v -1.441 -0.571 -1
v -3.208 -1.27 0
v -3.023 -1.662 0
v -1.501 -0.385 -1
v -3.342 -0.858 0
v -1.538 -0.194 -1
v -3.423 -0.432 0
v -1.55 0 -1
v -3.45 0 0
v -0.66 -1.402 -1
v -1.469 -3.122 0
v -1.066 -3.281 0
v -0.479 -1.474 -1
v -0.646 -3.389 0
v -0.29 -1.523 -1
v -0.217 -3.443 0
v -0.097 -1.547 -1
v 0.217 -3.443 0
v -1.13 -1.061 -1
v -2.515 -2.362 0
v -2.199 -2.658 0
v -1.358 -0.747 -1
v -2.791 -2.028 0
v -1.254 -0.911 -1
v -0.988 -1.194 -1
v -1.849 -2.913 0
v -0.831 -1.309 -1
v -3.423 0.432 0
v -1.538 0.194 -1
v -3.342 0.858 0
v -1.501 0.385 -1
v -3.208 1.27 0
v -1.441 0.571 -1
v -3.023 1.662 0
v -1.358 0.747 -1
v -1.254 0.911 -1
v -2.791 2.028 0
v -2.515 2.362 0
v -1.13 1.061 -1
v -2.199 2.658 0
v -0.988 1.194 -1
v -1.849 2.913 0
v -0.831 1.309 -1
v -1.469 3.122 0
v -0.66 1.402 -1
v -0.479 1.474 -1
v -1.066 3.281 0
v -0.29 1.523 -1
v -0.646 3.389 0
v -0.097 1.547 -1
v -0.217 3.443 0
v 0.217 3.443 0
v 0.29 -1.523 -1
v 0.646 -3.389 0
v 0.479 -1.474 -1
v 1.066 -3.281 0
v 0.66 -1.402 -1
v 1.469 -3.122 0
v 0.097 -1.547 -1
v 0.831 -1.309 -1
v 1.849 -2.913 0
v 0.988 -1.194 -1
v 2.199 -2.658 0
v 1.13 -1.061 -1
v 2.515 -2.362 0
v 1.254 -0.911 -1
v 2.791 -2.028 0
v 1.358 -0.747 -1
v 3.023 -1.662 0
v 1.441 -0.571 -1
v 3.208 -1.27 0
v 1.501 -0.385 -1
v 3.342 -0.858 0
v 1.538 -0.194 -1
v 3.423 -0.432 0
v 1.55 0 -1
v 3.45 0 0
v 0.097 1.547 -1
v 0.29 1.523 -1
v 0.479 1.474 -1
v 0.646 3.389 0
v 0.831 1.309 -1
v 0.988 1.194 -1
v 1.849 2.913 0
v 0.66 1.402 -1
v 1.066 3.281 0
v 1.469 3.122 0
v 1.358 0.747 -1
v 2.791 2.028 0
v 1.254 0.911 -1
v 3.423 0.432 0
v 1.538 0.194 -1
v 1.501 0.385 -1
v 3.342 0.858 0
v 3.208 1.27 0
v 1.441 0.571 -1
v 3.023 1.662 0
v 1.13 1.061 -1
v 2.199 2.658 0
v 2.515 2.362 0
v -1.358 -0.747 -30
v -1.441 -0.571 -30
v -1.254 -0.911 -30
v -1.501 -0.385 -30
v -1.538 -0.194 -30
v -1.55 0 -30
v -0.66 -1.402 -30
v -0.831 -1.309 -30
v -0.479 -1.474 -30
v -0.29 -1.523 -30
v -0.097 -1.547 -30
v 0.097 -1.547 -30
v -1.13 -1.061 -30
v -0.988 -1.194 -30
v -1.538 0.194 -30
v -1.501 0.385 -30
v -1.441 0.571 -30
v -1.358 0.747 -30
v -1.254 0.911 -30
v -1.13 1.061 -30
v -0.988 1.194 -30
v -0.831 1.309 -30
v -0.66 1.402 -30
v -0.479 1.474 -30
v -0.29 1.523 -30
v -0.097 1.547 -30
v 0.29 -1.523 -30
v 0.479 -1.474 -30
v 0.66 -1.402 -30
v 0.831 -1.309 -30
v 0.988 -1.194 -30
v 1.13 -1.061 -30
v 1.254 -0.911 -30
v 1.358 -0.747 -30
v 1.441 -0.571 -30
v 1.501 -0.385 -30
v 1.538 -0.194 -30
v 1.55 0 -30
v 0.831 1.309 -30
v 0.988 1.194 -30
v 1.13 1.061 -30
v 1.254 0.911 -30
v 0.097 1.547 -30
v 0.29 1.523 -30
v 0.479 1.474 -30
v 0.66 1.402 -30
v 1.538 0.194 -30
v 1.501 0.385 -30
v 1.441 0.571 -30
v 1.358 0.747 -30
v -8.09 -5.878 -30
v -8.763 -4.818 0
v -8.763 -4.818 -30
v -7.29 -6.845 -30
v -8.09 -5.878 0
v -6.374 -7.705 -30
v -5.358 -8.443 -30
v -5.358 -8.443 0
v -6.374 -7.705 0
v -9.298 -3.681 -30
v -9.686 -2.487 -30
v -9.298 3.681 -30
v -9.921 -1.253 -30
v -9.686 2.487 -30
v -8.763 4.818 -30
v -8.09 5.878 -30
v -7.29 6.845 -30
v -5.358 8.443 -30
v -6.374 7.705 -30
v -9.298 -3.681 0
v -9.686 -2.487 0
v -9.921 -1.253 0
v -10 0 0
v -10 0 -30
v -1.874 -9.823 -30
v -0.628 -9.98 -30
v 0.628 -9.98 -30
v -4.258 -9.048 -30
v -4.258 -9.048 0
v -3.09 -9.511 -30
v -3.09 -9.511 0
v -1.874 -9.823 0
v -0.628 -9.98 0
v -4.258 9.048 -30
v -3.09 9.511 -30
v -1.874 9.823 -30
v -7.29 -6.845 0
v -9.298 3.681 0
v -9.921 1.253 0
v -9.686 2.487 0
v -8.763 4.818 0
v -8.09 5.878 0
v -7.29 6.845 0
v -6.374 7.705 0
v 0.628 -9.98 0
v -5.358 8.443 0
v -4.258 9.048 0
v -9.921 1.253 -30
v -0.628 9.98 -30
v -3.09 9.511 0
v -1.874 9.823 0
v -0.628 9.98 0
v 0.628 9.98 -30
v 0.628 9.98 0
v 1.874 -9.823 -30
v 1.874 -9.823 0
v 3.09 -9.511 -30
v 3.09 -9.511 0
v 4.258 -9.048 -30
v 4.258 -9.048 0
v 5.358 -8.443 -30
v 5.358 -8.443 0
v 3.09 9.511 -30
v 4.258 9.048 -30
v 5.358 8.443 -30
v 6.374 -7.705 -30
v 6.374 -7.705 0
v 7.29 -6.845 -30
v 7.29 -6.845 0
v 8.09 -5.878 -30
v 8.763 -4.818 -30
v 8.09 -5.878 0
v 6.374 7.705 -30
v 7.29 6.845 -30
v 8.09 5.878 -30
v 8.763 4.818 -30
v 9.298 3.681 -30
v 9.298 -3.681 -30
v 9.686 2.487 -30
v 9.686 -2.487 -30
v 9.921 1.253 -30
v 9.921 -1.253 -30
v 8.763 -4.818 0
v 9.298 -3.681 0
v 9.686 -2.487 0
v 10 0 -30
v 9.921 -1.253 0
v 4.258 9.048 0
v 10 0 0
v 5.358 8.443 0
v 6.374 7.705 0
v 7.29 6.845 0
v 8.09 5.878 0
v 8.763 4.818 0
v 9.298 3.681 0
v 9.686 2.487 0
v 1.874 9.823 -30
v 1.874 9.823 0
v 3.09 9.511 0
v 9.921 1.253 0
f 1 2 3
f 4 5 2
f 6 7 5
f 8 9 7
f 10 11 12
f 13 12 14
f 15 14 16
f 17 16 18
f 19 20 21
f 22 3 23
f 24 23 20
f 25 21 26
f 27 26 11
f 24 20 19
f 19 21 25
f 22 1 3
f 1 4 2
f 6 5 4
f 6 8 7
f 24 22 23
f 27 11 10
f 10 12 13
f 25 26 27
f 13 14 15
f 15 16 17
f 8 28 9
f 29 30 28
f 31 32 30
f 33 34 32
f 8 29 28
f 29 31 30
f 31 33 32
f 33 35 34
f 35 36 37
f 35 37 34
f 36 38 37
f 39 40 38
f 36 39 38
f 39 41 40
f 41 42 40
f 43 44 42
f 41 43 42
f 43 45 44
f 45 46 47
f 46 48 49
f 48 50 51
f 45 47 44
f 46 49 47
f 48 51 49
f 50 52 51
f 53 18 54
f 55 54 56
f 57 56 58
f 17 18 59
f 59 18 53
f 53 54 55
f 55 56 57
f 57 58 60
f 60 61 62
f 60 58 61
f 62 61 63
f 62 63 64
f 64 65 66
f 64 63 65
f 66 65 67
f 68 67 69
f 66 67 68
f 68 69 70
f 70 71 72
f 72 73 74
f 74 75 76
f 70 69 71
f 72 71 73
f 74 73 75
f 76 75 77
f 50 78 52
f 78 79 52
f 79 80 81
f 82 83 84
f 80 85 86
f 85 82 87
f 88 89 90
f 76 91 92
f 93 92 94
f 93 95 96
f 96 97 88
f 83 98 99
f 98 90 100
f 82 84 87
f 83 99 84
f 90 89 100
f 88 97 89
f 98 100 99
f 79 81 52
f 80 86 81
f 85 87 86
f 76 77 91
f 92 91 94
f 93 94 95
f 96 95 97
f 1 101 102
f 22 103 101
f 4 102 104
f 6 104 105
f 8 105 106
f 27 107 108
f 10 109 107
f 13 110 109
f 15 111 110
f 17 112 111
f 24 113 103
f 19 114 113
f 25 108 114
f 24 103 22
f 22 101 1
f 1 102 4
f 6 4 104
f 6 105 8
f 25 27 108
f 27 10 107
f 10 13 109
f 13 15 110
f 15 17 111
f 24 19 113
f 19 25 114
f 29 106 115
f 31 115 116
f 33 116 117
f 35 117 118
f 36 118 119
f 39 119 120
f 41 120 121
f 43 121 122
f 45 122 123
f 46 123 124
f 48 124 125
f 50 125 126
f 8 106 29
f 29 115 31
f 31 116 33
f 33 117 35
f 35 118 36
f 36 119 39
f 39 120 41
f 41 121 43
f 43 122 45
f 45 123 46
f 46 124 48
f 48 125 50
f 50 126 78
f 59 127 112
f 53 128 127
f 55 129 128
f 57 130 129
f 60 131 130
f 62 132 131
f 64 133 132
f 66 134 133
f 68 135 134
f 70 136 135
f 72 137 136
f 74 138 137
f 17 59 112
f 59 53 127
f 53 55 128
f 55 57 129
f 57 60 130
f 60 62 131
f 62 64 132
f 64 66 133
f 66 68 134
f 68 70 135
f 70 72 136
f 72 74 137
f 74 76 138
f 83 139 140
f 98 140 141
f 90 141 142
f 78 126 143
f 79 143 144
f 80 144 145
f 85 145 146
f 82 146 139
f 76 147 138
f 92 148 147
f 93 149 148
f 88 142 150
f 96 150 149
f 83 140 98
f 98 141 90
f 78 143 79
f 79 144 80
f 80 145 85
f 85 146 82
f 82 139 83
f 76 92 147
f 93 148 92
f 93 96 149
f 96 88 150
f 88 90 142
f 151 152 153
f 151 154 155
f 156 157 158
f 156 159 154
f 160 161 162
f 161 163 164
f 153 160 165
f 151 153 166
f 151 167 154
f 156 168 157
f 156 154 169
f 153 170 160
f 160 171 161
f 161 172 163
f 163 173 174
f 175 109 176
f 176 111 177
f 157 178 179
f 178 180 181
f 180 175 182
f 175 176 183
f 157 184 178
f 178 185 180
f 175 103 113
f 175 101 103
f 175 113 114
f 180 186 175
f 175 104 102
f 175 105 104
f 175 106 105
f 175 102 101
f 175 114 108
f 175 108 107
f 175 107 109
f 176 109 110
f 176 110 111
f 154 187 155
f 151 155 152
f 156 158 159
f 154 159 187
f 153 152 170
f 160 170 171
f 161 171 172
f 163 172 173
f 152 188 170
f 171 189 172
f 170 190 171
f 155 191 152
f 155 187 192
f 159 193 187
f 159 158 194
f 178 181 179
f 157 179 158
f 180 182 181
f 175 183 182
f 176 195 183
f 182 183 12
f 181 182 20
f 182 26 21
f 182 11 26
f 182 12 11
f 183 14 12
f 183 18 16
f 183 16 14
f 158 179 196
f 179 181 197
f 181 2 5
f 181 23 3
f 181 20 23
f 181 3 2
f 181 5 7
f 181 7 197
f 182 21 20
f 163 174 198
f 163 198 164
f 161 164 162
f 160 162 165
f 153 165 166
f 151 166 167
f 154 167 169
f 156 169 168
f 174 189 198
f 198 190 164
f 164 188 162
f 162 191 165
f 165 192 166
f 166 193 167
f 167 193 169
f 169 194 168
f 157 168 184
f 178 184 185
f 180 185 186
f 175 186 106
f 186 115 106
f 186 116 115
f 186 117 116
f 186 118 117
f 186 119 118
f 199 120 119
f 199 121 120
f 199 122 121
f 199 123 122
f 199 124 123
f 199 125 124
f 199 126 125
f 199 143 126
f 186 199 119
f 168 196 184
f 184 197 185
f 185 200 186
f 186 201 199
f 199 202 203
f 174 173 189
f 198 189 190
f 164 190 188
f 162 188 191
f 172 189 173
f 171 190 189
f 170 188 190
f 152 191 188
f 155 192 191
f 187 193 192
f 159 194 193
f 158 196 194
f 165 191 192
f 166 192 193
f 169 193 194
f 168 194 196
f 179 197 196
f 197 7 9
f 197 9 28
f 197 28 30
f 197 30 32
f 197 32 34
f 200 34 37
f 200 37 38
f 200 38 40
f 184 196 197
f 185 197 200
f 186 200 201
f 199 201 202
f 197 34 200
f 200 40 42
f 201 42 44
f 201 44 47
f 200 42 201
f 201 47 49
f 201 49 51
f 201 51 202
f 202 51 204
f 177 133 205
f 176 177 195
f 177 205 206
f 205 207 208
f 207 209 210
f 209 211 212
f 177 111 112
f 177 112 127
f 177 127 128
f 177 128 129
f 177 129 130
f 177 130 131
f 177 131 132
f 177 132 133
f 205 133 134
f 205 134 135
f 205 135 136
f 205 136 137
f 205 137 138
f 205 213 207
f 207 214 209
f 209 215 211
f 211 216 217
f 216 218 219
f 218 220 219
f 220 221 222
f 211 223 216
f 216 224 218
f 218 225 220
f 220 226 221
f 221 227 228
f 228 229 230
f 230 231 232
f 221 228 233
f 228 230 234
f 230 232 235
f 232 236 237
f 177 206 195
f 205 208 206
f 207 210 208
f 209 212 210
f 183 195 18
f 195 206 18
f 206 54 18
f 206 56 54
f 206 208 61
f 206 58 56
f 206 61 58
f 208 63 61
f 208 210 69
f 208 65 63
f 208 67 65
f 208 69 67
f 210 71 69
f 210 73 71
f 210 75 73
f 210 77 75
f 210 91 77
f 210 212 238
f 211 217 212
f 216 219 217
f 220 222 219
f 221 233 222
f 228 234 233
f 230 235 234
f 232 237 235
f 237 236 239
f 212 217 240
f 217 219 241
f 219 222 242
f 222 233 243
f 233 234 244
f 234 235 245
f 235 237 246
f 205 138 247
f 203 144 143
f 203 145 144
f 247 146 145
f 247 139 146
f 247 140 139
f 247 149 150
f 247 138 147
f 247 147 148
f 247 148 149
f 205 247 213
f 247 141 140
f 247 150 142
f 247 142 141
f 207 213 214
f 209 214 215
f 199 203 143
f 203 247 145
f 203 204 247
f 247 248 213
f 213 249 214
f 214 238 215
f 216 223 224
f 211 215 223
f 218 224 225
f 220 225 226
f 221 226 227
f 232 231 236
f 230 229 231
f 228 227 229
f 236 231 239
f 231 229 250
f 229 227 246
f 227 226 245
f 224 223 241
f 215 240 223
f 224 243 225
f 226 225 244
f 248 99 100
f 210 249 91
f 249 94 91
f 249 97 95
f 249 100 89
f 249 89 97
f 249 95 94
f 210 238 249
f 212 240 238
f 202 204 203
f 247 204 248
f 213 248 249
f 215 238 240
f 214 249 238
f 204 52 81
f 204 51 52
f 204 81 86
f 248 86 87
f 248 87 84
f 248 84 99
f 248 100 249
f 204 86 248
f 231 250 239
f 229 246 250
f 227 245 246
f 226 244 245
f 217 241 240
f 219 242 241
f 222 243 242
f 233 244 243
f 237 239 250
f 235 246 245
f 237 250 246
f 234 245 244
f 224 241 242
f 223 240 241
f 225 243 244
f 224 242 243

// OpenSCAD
$fn = 50;


difference() {
	union() {
		translate(v = [0, 0, -30.0000000000]) {
			cylinder(h = 30, r = 10.0000000000);
		}
	}
	union() {
		translate(v = [0, 0, 0]) {
			rotate(a = [0, 0, 0]) {
				difference() {
					union() {
						translate(v = [0, 0, -33.0000000000]) {
							cylinder(h = 33, r = 1.2500000000);
						}
						translate(v = [0, 0, -1.0000000000]) {
							cylinder(h = 1.0000000000, r1 = 1.5500000000, r2 = 3.4500000000);
						}
						translate(v = [0, 0, -33.0000000000]) {
							cylinder(h = 33, r = 1.5500000000);
						}
						translate(v = [0, 0, -33.0000000000]) {
							cylinder(h = 33, r = 1.2500000000);
						}
					}
					union();
				}
			}
		}
	}
}
